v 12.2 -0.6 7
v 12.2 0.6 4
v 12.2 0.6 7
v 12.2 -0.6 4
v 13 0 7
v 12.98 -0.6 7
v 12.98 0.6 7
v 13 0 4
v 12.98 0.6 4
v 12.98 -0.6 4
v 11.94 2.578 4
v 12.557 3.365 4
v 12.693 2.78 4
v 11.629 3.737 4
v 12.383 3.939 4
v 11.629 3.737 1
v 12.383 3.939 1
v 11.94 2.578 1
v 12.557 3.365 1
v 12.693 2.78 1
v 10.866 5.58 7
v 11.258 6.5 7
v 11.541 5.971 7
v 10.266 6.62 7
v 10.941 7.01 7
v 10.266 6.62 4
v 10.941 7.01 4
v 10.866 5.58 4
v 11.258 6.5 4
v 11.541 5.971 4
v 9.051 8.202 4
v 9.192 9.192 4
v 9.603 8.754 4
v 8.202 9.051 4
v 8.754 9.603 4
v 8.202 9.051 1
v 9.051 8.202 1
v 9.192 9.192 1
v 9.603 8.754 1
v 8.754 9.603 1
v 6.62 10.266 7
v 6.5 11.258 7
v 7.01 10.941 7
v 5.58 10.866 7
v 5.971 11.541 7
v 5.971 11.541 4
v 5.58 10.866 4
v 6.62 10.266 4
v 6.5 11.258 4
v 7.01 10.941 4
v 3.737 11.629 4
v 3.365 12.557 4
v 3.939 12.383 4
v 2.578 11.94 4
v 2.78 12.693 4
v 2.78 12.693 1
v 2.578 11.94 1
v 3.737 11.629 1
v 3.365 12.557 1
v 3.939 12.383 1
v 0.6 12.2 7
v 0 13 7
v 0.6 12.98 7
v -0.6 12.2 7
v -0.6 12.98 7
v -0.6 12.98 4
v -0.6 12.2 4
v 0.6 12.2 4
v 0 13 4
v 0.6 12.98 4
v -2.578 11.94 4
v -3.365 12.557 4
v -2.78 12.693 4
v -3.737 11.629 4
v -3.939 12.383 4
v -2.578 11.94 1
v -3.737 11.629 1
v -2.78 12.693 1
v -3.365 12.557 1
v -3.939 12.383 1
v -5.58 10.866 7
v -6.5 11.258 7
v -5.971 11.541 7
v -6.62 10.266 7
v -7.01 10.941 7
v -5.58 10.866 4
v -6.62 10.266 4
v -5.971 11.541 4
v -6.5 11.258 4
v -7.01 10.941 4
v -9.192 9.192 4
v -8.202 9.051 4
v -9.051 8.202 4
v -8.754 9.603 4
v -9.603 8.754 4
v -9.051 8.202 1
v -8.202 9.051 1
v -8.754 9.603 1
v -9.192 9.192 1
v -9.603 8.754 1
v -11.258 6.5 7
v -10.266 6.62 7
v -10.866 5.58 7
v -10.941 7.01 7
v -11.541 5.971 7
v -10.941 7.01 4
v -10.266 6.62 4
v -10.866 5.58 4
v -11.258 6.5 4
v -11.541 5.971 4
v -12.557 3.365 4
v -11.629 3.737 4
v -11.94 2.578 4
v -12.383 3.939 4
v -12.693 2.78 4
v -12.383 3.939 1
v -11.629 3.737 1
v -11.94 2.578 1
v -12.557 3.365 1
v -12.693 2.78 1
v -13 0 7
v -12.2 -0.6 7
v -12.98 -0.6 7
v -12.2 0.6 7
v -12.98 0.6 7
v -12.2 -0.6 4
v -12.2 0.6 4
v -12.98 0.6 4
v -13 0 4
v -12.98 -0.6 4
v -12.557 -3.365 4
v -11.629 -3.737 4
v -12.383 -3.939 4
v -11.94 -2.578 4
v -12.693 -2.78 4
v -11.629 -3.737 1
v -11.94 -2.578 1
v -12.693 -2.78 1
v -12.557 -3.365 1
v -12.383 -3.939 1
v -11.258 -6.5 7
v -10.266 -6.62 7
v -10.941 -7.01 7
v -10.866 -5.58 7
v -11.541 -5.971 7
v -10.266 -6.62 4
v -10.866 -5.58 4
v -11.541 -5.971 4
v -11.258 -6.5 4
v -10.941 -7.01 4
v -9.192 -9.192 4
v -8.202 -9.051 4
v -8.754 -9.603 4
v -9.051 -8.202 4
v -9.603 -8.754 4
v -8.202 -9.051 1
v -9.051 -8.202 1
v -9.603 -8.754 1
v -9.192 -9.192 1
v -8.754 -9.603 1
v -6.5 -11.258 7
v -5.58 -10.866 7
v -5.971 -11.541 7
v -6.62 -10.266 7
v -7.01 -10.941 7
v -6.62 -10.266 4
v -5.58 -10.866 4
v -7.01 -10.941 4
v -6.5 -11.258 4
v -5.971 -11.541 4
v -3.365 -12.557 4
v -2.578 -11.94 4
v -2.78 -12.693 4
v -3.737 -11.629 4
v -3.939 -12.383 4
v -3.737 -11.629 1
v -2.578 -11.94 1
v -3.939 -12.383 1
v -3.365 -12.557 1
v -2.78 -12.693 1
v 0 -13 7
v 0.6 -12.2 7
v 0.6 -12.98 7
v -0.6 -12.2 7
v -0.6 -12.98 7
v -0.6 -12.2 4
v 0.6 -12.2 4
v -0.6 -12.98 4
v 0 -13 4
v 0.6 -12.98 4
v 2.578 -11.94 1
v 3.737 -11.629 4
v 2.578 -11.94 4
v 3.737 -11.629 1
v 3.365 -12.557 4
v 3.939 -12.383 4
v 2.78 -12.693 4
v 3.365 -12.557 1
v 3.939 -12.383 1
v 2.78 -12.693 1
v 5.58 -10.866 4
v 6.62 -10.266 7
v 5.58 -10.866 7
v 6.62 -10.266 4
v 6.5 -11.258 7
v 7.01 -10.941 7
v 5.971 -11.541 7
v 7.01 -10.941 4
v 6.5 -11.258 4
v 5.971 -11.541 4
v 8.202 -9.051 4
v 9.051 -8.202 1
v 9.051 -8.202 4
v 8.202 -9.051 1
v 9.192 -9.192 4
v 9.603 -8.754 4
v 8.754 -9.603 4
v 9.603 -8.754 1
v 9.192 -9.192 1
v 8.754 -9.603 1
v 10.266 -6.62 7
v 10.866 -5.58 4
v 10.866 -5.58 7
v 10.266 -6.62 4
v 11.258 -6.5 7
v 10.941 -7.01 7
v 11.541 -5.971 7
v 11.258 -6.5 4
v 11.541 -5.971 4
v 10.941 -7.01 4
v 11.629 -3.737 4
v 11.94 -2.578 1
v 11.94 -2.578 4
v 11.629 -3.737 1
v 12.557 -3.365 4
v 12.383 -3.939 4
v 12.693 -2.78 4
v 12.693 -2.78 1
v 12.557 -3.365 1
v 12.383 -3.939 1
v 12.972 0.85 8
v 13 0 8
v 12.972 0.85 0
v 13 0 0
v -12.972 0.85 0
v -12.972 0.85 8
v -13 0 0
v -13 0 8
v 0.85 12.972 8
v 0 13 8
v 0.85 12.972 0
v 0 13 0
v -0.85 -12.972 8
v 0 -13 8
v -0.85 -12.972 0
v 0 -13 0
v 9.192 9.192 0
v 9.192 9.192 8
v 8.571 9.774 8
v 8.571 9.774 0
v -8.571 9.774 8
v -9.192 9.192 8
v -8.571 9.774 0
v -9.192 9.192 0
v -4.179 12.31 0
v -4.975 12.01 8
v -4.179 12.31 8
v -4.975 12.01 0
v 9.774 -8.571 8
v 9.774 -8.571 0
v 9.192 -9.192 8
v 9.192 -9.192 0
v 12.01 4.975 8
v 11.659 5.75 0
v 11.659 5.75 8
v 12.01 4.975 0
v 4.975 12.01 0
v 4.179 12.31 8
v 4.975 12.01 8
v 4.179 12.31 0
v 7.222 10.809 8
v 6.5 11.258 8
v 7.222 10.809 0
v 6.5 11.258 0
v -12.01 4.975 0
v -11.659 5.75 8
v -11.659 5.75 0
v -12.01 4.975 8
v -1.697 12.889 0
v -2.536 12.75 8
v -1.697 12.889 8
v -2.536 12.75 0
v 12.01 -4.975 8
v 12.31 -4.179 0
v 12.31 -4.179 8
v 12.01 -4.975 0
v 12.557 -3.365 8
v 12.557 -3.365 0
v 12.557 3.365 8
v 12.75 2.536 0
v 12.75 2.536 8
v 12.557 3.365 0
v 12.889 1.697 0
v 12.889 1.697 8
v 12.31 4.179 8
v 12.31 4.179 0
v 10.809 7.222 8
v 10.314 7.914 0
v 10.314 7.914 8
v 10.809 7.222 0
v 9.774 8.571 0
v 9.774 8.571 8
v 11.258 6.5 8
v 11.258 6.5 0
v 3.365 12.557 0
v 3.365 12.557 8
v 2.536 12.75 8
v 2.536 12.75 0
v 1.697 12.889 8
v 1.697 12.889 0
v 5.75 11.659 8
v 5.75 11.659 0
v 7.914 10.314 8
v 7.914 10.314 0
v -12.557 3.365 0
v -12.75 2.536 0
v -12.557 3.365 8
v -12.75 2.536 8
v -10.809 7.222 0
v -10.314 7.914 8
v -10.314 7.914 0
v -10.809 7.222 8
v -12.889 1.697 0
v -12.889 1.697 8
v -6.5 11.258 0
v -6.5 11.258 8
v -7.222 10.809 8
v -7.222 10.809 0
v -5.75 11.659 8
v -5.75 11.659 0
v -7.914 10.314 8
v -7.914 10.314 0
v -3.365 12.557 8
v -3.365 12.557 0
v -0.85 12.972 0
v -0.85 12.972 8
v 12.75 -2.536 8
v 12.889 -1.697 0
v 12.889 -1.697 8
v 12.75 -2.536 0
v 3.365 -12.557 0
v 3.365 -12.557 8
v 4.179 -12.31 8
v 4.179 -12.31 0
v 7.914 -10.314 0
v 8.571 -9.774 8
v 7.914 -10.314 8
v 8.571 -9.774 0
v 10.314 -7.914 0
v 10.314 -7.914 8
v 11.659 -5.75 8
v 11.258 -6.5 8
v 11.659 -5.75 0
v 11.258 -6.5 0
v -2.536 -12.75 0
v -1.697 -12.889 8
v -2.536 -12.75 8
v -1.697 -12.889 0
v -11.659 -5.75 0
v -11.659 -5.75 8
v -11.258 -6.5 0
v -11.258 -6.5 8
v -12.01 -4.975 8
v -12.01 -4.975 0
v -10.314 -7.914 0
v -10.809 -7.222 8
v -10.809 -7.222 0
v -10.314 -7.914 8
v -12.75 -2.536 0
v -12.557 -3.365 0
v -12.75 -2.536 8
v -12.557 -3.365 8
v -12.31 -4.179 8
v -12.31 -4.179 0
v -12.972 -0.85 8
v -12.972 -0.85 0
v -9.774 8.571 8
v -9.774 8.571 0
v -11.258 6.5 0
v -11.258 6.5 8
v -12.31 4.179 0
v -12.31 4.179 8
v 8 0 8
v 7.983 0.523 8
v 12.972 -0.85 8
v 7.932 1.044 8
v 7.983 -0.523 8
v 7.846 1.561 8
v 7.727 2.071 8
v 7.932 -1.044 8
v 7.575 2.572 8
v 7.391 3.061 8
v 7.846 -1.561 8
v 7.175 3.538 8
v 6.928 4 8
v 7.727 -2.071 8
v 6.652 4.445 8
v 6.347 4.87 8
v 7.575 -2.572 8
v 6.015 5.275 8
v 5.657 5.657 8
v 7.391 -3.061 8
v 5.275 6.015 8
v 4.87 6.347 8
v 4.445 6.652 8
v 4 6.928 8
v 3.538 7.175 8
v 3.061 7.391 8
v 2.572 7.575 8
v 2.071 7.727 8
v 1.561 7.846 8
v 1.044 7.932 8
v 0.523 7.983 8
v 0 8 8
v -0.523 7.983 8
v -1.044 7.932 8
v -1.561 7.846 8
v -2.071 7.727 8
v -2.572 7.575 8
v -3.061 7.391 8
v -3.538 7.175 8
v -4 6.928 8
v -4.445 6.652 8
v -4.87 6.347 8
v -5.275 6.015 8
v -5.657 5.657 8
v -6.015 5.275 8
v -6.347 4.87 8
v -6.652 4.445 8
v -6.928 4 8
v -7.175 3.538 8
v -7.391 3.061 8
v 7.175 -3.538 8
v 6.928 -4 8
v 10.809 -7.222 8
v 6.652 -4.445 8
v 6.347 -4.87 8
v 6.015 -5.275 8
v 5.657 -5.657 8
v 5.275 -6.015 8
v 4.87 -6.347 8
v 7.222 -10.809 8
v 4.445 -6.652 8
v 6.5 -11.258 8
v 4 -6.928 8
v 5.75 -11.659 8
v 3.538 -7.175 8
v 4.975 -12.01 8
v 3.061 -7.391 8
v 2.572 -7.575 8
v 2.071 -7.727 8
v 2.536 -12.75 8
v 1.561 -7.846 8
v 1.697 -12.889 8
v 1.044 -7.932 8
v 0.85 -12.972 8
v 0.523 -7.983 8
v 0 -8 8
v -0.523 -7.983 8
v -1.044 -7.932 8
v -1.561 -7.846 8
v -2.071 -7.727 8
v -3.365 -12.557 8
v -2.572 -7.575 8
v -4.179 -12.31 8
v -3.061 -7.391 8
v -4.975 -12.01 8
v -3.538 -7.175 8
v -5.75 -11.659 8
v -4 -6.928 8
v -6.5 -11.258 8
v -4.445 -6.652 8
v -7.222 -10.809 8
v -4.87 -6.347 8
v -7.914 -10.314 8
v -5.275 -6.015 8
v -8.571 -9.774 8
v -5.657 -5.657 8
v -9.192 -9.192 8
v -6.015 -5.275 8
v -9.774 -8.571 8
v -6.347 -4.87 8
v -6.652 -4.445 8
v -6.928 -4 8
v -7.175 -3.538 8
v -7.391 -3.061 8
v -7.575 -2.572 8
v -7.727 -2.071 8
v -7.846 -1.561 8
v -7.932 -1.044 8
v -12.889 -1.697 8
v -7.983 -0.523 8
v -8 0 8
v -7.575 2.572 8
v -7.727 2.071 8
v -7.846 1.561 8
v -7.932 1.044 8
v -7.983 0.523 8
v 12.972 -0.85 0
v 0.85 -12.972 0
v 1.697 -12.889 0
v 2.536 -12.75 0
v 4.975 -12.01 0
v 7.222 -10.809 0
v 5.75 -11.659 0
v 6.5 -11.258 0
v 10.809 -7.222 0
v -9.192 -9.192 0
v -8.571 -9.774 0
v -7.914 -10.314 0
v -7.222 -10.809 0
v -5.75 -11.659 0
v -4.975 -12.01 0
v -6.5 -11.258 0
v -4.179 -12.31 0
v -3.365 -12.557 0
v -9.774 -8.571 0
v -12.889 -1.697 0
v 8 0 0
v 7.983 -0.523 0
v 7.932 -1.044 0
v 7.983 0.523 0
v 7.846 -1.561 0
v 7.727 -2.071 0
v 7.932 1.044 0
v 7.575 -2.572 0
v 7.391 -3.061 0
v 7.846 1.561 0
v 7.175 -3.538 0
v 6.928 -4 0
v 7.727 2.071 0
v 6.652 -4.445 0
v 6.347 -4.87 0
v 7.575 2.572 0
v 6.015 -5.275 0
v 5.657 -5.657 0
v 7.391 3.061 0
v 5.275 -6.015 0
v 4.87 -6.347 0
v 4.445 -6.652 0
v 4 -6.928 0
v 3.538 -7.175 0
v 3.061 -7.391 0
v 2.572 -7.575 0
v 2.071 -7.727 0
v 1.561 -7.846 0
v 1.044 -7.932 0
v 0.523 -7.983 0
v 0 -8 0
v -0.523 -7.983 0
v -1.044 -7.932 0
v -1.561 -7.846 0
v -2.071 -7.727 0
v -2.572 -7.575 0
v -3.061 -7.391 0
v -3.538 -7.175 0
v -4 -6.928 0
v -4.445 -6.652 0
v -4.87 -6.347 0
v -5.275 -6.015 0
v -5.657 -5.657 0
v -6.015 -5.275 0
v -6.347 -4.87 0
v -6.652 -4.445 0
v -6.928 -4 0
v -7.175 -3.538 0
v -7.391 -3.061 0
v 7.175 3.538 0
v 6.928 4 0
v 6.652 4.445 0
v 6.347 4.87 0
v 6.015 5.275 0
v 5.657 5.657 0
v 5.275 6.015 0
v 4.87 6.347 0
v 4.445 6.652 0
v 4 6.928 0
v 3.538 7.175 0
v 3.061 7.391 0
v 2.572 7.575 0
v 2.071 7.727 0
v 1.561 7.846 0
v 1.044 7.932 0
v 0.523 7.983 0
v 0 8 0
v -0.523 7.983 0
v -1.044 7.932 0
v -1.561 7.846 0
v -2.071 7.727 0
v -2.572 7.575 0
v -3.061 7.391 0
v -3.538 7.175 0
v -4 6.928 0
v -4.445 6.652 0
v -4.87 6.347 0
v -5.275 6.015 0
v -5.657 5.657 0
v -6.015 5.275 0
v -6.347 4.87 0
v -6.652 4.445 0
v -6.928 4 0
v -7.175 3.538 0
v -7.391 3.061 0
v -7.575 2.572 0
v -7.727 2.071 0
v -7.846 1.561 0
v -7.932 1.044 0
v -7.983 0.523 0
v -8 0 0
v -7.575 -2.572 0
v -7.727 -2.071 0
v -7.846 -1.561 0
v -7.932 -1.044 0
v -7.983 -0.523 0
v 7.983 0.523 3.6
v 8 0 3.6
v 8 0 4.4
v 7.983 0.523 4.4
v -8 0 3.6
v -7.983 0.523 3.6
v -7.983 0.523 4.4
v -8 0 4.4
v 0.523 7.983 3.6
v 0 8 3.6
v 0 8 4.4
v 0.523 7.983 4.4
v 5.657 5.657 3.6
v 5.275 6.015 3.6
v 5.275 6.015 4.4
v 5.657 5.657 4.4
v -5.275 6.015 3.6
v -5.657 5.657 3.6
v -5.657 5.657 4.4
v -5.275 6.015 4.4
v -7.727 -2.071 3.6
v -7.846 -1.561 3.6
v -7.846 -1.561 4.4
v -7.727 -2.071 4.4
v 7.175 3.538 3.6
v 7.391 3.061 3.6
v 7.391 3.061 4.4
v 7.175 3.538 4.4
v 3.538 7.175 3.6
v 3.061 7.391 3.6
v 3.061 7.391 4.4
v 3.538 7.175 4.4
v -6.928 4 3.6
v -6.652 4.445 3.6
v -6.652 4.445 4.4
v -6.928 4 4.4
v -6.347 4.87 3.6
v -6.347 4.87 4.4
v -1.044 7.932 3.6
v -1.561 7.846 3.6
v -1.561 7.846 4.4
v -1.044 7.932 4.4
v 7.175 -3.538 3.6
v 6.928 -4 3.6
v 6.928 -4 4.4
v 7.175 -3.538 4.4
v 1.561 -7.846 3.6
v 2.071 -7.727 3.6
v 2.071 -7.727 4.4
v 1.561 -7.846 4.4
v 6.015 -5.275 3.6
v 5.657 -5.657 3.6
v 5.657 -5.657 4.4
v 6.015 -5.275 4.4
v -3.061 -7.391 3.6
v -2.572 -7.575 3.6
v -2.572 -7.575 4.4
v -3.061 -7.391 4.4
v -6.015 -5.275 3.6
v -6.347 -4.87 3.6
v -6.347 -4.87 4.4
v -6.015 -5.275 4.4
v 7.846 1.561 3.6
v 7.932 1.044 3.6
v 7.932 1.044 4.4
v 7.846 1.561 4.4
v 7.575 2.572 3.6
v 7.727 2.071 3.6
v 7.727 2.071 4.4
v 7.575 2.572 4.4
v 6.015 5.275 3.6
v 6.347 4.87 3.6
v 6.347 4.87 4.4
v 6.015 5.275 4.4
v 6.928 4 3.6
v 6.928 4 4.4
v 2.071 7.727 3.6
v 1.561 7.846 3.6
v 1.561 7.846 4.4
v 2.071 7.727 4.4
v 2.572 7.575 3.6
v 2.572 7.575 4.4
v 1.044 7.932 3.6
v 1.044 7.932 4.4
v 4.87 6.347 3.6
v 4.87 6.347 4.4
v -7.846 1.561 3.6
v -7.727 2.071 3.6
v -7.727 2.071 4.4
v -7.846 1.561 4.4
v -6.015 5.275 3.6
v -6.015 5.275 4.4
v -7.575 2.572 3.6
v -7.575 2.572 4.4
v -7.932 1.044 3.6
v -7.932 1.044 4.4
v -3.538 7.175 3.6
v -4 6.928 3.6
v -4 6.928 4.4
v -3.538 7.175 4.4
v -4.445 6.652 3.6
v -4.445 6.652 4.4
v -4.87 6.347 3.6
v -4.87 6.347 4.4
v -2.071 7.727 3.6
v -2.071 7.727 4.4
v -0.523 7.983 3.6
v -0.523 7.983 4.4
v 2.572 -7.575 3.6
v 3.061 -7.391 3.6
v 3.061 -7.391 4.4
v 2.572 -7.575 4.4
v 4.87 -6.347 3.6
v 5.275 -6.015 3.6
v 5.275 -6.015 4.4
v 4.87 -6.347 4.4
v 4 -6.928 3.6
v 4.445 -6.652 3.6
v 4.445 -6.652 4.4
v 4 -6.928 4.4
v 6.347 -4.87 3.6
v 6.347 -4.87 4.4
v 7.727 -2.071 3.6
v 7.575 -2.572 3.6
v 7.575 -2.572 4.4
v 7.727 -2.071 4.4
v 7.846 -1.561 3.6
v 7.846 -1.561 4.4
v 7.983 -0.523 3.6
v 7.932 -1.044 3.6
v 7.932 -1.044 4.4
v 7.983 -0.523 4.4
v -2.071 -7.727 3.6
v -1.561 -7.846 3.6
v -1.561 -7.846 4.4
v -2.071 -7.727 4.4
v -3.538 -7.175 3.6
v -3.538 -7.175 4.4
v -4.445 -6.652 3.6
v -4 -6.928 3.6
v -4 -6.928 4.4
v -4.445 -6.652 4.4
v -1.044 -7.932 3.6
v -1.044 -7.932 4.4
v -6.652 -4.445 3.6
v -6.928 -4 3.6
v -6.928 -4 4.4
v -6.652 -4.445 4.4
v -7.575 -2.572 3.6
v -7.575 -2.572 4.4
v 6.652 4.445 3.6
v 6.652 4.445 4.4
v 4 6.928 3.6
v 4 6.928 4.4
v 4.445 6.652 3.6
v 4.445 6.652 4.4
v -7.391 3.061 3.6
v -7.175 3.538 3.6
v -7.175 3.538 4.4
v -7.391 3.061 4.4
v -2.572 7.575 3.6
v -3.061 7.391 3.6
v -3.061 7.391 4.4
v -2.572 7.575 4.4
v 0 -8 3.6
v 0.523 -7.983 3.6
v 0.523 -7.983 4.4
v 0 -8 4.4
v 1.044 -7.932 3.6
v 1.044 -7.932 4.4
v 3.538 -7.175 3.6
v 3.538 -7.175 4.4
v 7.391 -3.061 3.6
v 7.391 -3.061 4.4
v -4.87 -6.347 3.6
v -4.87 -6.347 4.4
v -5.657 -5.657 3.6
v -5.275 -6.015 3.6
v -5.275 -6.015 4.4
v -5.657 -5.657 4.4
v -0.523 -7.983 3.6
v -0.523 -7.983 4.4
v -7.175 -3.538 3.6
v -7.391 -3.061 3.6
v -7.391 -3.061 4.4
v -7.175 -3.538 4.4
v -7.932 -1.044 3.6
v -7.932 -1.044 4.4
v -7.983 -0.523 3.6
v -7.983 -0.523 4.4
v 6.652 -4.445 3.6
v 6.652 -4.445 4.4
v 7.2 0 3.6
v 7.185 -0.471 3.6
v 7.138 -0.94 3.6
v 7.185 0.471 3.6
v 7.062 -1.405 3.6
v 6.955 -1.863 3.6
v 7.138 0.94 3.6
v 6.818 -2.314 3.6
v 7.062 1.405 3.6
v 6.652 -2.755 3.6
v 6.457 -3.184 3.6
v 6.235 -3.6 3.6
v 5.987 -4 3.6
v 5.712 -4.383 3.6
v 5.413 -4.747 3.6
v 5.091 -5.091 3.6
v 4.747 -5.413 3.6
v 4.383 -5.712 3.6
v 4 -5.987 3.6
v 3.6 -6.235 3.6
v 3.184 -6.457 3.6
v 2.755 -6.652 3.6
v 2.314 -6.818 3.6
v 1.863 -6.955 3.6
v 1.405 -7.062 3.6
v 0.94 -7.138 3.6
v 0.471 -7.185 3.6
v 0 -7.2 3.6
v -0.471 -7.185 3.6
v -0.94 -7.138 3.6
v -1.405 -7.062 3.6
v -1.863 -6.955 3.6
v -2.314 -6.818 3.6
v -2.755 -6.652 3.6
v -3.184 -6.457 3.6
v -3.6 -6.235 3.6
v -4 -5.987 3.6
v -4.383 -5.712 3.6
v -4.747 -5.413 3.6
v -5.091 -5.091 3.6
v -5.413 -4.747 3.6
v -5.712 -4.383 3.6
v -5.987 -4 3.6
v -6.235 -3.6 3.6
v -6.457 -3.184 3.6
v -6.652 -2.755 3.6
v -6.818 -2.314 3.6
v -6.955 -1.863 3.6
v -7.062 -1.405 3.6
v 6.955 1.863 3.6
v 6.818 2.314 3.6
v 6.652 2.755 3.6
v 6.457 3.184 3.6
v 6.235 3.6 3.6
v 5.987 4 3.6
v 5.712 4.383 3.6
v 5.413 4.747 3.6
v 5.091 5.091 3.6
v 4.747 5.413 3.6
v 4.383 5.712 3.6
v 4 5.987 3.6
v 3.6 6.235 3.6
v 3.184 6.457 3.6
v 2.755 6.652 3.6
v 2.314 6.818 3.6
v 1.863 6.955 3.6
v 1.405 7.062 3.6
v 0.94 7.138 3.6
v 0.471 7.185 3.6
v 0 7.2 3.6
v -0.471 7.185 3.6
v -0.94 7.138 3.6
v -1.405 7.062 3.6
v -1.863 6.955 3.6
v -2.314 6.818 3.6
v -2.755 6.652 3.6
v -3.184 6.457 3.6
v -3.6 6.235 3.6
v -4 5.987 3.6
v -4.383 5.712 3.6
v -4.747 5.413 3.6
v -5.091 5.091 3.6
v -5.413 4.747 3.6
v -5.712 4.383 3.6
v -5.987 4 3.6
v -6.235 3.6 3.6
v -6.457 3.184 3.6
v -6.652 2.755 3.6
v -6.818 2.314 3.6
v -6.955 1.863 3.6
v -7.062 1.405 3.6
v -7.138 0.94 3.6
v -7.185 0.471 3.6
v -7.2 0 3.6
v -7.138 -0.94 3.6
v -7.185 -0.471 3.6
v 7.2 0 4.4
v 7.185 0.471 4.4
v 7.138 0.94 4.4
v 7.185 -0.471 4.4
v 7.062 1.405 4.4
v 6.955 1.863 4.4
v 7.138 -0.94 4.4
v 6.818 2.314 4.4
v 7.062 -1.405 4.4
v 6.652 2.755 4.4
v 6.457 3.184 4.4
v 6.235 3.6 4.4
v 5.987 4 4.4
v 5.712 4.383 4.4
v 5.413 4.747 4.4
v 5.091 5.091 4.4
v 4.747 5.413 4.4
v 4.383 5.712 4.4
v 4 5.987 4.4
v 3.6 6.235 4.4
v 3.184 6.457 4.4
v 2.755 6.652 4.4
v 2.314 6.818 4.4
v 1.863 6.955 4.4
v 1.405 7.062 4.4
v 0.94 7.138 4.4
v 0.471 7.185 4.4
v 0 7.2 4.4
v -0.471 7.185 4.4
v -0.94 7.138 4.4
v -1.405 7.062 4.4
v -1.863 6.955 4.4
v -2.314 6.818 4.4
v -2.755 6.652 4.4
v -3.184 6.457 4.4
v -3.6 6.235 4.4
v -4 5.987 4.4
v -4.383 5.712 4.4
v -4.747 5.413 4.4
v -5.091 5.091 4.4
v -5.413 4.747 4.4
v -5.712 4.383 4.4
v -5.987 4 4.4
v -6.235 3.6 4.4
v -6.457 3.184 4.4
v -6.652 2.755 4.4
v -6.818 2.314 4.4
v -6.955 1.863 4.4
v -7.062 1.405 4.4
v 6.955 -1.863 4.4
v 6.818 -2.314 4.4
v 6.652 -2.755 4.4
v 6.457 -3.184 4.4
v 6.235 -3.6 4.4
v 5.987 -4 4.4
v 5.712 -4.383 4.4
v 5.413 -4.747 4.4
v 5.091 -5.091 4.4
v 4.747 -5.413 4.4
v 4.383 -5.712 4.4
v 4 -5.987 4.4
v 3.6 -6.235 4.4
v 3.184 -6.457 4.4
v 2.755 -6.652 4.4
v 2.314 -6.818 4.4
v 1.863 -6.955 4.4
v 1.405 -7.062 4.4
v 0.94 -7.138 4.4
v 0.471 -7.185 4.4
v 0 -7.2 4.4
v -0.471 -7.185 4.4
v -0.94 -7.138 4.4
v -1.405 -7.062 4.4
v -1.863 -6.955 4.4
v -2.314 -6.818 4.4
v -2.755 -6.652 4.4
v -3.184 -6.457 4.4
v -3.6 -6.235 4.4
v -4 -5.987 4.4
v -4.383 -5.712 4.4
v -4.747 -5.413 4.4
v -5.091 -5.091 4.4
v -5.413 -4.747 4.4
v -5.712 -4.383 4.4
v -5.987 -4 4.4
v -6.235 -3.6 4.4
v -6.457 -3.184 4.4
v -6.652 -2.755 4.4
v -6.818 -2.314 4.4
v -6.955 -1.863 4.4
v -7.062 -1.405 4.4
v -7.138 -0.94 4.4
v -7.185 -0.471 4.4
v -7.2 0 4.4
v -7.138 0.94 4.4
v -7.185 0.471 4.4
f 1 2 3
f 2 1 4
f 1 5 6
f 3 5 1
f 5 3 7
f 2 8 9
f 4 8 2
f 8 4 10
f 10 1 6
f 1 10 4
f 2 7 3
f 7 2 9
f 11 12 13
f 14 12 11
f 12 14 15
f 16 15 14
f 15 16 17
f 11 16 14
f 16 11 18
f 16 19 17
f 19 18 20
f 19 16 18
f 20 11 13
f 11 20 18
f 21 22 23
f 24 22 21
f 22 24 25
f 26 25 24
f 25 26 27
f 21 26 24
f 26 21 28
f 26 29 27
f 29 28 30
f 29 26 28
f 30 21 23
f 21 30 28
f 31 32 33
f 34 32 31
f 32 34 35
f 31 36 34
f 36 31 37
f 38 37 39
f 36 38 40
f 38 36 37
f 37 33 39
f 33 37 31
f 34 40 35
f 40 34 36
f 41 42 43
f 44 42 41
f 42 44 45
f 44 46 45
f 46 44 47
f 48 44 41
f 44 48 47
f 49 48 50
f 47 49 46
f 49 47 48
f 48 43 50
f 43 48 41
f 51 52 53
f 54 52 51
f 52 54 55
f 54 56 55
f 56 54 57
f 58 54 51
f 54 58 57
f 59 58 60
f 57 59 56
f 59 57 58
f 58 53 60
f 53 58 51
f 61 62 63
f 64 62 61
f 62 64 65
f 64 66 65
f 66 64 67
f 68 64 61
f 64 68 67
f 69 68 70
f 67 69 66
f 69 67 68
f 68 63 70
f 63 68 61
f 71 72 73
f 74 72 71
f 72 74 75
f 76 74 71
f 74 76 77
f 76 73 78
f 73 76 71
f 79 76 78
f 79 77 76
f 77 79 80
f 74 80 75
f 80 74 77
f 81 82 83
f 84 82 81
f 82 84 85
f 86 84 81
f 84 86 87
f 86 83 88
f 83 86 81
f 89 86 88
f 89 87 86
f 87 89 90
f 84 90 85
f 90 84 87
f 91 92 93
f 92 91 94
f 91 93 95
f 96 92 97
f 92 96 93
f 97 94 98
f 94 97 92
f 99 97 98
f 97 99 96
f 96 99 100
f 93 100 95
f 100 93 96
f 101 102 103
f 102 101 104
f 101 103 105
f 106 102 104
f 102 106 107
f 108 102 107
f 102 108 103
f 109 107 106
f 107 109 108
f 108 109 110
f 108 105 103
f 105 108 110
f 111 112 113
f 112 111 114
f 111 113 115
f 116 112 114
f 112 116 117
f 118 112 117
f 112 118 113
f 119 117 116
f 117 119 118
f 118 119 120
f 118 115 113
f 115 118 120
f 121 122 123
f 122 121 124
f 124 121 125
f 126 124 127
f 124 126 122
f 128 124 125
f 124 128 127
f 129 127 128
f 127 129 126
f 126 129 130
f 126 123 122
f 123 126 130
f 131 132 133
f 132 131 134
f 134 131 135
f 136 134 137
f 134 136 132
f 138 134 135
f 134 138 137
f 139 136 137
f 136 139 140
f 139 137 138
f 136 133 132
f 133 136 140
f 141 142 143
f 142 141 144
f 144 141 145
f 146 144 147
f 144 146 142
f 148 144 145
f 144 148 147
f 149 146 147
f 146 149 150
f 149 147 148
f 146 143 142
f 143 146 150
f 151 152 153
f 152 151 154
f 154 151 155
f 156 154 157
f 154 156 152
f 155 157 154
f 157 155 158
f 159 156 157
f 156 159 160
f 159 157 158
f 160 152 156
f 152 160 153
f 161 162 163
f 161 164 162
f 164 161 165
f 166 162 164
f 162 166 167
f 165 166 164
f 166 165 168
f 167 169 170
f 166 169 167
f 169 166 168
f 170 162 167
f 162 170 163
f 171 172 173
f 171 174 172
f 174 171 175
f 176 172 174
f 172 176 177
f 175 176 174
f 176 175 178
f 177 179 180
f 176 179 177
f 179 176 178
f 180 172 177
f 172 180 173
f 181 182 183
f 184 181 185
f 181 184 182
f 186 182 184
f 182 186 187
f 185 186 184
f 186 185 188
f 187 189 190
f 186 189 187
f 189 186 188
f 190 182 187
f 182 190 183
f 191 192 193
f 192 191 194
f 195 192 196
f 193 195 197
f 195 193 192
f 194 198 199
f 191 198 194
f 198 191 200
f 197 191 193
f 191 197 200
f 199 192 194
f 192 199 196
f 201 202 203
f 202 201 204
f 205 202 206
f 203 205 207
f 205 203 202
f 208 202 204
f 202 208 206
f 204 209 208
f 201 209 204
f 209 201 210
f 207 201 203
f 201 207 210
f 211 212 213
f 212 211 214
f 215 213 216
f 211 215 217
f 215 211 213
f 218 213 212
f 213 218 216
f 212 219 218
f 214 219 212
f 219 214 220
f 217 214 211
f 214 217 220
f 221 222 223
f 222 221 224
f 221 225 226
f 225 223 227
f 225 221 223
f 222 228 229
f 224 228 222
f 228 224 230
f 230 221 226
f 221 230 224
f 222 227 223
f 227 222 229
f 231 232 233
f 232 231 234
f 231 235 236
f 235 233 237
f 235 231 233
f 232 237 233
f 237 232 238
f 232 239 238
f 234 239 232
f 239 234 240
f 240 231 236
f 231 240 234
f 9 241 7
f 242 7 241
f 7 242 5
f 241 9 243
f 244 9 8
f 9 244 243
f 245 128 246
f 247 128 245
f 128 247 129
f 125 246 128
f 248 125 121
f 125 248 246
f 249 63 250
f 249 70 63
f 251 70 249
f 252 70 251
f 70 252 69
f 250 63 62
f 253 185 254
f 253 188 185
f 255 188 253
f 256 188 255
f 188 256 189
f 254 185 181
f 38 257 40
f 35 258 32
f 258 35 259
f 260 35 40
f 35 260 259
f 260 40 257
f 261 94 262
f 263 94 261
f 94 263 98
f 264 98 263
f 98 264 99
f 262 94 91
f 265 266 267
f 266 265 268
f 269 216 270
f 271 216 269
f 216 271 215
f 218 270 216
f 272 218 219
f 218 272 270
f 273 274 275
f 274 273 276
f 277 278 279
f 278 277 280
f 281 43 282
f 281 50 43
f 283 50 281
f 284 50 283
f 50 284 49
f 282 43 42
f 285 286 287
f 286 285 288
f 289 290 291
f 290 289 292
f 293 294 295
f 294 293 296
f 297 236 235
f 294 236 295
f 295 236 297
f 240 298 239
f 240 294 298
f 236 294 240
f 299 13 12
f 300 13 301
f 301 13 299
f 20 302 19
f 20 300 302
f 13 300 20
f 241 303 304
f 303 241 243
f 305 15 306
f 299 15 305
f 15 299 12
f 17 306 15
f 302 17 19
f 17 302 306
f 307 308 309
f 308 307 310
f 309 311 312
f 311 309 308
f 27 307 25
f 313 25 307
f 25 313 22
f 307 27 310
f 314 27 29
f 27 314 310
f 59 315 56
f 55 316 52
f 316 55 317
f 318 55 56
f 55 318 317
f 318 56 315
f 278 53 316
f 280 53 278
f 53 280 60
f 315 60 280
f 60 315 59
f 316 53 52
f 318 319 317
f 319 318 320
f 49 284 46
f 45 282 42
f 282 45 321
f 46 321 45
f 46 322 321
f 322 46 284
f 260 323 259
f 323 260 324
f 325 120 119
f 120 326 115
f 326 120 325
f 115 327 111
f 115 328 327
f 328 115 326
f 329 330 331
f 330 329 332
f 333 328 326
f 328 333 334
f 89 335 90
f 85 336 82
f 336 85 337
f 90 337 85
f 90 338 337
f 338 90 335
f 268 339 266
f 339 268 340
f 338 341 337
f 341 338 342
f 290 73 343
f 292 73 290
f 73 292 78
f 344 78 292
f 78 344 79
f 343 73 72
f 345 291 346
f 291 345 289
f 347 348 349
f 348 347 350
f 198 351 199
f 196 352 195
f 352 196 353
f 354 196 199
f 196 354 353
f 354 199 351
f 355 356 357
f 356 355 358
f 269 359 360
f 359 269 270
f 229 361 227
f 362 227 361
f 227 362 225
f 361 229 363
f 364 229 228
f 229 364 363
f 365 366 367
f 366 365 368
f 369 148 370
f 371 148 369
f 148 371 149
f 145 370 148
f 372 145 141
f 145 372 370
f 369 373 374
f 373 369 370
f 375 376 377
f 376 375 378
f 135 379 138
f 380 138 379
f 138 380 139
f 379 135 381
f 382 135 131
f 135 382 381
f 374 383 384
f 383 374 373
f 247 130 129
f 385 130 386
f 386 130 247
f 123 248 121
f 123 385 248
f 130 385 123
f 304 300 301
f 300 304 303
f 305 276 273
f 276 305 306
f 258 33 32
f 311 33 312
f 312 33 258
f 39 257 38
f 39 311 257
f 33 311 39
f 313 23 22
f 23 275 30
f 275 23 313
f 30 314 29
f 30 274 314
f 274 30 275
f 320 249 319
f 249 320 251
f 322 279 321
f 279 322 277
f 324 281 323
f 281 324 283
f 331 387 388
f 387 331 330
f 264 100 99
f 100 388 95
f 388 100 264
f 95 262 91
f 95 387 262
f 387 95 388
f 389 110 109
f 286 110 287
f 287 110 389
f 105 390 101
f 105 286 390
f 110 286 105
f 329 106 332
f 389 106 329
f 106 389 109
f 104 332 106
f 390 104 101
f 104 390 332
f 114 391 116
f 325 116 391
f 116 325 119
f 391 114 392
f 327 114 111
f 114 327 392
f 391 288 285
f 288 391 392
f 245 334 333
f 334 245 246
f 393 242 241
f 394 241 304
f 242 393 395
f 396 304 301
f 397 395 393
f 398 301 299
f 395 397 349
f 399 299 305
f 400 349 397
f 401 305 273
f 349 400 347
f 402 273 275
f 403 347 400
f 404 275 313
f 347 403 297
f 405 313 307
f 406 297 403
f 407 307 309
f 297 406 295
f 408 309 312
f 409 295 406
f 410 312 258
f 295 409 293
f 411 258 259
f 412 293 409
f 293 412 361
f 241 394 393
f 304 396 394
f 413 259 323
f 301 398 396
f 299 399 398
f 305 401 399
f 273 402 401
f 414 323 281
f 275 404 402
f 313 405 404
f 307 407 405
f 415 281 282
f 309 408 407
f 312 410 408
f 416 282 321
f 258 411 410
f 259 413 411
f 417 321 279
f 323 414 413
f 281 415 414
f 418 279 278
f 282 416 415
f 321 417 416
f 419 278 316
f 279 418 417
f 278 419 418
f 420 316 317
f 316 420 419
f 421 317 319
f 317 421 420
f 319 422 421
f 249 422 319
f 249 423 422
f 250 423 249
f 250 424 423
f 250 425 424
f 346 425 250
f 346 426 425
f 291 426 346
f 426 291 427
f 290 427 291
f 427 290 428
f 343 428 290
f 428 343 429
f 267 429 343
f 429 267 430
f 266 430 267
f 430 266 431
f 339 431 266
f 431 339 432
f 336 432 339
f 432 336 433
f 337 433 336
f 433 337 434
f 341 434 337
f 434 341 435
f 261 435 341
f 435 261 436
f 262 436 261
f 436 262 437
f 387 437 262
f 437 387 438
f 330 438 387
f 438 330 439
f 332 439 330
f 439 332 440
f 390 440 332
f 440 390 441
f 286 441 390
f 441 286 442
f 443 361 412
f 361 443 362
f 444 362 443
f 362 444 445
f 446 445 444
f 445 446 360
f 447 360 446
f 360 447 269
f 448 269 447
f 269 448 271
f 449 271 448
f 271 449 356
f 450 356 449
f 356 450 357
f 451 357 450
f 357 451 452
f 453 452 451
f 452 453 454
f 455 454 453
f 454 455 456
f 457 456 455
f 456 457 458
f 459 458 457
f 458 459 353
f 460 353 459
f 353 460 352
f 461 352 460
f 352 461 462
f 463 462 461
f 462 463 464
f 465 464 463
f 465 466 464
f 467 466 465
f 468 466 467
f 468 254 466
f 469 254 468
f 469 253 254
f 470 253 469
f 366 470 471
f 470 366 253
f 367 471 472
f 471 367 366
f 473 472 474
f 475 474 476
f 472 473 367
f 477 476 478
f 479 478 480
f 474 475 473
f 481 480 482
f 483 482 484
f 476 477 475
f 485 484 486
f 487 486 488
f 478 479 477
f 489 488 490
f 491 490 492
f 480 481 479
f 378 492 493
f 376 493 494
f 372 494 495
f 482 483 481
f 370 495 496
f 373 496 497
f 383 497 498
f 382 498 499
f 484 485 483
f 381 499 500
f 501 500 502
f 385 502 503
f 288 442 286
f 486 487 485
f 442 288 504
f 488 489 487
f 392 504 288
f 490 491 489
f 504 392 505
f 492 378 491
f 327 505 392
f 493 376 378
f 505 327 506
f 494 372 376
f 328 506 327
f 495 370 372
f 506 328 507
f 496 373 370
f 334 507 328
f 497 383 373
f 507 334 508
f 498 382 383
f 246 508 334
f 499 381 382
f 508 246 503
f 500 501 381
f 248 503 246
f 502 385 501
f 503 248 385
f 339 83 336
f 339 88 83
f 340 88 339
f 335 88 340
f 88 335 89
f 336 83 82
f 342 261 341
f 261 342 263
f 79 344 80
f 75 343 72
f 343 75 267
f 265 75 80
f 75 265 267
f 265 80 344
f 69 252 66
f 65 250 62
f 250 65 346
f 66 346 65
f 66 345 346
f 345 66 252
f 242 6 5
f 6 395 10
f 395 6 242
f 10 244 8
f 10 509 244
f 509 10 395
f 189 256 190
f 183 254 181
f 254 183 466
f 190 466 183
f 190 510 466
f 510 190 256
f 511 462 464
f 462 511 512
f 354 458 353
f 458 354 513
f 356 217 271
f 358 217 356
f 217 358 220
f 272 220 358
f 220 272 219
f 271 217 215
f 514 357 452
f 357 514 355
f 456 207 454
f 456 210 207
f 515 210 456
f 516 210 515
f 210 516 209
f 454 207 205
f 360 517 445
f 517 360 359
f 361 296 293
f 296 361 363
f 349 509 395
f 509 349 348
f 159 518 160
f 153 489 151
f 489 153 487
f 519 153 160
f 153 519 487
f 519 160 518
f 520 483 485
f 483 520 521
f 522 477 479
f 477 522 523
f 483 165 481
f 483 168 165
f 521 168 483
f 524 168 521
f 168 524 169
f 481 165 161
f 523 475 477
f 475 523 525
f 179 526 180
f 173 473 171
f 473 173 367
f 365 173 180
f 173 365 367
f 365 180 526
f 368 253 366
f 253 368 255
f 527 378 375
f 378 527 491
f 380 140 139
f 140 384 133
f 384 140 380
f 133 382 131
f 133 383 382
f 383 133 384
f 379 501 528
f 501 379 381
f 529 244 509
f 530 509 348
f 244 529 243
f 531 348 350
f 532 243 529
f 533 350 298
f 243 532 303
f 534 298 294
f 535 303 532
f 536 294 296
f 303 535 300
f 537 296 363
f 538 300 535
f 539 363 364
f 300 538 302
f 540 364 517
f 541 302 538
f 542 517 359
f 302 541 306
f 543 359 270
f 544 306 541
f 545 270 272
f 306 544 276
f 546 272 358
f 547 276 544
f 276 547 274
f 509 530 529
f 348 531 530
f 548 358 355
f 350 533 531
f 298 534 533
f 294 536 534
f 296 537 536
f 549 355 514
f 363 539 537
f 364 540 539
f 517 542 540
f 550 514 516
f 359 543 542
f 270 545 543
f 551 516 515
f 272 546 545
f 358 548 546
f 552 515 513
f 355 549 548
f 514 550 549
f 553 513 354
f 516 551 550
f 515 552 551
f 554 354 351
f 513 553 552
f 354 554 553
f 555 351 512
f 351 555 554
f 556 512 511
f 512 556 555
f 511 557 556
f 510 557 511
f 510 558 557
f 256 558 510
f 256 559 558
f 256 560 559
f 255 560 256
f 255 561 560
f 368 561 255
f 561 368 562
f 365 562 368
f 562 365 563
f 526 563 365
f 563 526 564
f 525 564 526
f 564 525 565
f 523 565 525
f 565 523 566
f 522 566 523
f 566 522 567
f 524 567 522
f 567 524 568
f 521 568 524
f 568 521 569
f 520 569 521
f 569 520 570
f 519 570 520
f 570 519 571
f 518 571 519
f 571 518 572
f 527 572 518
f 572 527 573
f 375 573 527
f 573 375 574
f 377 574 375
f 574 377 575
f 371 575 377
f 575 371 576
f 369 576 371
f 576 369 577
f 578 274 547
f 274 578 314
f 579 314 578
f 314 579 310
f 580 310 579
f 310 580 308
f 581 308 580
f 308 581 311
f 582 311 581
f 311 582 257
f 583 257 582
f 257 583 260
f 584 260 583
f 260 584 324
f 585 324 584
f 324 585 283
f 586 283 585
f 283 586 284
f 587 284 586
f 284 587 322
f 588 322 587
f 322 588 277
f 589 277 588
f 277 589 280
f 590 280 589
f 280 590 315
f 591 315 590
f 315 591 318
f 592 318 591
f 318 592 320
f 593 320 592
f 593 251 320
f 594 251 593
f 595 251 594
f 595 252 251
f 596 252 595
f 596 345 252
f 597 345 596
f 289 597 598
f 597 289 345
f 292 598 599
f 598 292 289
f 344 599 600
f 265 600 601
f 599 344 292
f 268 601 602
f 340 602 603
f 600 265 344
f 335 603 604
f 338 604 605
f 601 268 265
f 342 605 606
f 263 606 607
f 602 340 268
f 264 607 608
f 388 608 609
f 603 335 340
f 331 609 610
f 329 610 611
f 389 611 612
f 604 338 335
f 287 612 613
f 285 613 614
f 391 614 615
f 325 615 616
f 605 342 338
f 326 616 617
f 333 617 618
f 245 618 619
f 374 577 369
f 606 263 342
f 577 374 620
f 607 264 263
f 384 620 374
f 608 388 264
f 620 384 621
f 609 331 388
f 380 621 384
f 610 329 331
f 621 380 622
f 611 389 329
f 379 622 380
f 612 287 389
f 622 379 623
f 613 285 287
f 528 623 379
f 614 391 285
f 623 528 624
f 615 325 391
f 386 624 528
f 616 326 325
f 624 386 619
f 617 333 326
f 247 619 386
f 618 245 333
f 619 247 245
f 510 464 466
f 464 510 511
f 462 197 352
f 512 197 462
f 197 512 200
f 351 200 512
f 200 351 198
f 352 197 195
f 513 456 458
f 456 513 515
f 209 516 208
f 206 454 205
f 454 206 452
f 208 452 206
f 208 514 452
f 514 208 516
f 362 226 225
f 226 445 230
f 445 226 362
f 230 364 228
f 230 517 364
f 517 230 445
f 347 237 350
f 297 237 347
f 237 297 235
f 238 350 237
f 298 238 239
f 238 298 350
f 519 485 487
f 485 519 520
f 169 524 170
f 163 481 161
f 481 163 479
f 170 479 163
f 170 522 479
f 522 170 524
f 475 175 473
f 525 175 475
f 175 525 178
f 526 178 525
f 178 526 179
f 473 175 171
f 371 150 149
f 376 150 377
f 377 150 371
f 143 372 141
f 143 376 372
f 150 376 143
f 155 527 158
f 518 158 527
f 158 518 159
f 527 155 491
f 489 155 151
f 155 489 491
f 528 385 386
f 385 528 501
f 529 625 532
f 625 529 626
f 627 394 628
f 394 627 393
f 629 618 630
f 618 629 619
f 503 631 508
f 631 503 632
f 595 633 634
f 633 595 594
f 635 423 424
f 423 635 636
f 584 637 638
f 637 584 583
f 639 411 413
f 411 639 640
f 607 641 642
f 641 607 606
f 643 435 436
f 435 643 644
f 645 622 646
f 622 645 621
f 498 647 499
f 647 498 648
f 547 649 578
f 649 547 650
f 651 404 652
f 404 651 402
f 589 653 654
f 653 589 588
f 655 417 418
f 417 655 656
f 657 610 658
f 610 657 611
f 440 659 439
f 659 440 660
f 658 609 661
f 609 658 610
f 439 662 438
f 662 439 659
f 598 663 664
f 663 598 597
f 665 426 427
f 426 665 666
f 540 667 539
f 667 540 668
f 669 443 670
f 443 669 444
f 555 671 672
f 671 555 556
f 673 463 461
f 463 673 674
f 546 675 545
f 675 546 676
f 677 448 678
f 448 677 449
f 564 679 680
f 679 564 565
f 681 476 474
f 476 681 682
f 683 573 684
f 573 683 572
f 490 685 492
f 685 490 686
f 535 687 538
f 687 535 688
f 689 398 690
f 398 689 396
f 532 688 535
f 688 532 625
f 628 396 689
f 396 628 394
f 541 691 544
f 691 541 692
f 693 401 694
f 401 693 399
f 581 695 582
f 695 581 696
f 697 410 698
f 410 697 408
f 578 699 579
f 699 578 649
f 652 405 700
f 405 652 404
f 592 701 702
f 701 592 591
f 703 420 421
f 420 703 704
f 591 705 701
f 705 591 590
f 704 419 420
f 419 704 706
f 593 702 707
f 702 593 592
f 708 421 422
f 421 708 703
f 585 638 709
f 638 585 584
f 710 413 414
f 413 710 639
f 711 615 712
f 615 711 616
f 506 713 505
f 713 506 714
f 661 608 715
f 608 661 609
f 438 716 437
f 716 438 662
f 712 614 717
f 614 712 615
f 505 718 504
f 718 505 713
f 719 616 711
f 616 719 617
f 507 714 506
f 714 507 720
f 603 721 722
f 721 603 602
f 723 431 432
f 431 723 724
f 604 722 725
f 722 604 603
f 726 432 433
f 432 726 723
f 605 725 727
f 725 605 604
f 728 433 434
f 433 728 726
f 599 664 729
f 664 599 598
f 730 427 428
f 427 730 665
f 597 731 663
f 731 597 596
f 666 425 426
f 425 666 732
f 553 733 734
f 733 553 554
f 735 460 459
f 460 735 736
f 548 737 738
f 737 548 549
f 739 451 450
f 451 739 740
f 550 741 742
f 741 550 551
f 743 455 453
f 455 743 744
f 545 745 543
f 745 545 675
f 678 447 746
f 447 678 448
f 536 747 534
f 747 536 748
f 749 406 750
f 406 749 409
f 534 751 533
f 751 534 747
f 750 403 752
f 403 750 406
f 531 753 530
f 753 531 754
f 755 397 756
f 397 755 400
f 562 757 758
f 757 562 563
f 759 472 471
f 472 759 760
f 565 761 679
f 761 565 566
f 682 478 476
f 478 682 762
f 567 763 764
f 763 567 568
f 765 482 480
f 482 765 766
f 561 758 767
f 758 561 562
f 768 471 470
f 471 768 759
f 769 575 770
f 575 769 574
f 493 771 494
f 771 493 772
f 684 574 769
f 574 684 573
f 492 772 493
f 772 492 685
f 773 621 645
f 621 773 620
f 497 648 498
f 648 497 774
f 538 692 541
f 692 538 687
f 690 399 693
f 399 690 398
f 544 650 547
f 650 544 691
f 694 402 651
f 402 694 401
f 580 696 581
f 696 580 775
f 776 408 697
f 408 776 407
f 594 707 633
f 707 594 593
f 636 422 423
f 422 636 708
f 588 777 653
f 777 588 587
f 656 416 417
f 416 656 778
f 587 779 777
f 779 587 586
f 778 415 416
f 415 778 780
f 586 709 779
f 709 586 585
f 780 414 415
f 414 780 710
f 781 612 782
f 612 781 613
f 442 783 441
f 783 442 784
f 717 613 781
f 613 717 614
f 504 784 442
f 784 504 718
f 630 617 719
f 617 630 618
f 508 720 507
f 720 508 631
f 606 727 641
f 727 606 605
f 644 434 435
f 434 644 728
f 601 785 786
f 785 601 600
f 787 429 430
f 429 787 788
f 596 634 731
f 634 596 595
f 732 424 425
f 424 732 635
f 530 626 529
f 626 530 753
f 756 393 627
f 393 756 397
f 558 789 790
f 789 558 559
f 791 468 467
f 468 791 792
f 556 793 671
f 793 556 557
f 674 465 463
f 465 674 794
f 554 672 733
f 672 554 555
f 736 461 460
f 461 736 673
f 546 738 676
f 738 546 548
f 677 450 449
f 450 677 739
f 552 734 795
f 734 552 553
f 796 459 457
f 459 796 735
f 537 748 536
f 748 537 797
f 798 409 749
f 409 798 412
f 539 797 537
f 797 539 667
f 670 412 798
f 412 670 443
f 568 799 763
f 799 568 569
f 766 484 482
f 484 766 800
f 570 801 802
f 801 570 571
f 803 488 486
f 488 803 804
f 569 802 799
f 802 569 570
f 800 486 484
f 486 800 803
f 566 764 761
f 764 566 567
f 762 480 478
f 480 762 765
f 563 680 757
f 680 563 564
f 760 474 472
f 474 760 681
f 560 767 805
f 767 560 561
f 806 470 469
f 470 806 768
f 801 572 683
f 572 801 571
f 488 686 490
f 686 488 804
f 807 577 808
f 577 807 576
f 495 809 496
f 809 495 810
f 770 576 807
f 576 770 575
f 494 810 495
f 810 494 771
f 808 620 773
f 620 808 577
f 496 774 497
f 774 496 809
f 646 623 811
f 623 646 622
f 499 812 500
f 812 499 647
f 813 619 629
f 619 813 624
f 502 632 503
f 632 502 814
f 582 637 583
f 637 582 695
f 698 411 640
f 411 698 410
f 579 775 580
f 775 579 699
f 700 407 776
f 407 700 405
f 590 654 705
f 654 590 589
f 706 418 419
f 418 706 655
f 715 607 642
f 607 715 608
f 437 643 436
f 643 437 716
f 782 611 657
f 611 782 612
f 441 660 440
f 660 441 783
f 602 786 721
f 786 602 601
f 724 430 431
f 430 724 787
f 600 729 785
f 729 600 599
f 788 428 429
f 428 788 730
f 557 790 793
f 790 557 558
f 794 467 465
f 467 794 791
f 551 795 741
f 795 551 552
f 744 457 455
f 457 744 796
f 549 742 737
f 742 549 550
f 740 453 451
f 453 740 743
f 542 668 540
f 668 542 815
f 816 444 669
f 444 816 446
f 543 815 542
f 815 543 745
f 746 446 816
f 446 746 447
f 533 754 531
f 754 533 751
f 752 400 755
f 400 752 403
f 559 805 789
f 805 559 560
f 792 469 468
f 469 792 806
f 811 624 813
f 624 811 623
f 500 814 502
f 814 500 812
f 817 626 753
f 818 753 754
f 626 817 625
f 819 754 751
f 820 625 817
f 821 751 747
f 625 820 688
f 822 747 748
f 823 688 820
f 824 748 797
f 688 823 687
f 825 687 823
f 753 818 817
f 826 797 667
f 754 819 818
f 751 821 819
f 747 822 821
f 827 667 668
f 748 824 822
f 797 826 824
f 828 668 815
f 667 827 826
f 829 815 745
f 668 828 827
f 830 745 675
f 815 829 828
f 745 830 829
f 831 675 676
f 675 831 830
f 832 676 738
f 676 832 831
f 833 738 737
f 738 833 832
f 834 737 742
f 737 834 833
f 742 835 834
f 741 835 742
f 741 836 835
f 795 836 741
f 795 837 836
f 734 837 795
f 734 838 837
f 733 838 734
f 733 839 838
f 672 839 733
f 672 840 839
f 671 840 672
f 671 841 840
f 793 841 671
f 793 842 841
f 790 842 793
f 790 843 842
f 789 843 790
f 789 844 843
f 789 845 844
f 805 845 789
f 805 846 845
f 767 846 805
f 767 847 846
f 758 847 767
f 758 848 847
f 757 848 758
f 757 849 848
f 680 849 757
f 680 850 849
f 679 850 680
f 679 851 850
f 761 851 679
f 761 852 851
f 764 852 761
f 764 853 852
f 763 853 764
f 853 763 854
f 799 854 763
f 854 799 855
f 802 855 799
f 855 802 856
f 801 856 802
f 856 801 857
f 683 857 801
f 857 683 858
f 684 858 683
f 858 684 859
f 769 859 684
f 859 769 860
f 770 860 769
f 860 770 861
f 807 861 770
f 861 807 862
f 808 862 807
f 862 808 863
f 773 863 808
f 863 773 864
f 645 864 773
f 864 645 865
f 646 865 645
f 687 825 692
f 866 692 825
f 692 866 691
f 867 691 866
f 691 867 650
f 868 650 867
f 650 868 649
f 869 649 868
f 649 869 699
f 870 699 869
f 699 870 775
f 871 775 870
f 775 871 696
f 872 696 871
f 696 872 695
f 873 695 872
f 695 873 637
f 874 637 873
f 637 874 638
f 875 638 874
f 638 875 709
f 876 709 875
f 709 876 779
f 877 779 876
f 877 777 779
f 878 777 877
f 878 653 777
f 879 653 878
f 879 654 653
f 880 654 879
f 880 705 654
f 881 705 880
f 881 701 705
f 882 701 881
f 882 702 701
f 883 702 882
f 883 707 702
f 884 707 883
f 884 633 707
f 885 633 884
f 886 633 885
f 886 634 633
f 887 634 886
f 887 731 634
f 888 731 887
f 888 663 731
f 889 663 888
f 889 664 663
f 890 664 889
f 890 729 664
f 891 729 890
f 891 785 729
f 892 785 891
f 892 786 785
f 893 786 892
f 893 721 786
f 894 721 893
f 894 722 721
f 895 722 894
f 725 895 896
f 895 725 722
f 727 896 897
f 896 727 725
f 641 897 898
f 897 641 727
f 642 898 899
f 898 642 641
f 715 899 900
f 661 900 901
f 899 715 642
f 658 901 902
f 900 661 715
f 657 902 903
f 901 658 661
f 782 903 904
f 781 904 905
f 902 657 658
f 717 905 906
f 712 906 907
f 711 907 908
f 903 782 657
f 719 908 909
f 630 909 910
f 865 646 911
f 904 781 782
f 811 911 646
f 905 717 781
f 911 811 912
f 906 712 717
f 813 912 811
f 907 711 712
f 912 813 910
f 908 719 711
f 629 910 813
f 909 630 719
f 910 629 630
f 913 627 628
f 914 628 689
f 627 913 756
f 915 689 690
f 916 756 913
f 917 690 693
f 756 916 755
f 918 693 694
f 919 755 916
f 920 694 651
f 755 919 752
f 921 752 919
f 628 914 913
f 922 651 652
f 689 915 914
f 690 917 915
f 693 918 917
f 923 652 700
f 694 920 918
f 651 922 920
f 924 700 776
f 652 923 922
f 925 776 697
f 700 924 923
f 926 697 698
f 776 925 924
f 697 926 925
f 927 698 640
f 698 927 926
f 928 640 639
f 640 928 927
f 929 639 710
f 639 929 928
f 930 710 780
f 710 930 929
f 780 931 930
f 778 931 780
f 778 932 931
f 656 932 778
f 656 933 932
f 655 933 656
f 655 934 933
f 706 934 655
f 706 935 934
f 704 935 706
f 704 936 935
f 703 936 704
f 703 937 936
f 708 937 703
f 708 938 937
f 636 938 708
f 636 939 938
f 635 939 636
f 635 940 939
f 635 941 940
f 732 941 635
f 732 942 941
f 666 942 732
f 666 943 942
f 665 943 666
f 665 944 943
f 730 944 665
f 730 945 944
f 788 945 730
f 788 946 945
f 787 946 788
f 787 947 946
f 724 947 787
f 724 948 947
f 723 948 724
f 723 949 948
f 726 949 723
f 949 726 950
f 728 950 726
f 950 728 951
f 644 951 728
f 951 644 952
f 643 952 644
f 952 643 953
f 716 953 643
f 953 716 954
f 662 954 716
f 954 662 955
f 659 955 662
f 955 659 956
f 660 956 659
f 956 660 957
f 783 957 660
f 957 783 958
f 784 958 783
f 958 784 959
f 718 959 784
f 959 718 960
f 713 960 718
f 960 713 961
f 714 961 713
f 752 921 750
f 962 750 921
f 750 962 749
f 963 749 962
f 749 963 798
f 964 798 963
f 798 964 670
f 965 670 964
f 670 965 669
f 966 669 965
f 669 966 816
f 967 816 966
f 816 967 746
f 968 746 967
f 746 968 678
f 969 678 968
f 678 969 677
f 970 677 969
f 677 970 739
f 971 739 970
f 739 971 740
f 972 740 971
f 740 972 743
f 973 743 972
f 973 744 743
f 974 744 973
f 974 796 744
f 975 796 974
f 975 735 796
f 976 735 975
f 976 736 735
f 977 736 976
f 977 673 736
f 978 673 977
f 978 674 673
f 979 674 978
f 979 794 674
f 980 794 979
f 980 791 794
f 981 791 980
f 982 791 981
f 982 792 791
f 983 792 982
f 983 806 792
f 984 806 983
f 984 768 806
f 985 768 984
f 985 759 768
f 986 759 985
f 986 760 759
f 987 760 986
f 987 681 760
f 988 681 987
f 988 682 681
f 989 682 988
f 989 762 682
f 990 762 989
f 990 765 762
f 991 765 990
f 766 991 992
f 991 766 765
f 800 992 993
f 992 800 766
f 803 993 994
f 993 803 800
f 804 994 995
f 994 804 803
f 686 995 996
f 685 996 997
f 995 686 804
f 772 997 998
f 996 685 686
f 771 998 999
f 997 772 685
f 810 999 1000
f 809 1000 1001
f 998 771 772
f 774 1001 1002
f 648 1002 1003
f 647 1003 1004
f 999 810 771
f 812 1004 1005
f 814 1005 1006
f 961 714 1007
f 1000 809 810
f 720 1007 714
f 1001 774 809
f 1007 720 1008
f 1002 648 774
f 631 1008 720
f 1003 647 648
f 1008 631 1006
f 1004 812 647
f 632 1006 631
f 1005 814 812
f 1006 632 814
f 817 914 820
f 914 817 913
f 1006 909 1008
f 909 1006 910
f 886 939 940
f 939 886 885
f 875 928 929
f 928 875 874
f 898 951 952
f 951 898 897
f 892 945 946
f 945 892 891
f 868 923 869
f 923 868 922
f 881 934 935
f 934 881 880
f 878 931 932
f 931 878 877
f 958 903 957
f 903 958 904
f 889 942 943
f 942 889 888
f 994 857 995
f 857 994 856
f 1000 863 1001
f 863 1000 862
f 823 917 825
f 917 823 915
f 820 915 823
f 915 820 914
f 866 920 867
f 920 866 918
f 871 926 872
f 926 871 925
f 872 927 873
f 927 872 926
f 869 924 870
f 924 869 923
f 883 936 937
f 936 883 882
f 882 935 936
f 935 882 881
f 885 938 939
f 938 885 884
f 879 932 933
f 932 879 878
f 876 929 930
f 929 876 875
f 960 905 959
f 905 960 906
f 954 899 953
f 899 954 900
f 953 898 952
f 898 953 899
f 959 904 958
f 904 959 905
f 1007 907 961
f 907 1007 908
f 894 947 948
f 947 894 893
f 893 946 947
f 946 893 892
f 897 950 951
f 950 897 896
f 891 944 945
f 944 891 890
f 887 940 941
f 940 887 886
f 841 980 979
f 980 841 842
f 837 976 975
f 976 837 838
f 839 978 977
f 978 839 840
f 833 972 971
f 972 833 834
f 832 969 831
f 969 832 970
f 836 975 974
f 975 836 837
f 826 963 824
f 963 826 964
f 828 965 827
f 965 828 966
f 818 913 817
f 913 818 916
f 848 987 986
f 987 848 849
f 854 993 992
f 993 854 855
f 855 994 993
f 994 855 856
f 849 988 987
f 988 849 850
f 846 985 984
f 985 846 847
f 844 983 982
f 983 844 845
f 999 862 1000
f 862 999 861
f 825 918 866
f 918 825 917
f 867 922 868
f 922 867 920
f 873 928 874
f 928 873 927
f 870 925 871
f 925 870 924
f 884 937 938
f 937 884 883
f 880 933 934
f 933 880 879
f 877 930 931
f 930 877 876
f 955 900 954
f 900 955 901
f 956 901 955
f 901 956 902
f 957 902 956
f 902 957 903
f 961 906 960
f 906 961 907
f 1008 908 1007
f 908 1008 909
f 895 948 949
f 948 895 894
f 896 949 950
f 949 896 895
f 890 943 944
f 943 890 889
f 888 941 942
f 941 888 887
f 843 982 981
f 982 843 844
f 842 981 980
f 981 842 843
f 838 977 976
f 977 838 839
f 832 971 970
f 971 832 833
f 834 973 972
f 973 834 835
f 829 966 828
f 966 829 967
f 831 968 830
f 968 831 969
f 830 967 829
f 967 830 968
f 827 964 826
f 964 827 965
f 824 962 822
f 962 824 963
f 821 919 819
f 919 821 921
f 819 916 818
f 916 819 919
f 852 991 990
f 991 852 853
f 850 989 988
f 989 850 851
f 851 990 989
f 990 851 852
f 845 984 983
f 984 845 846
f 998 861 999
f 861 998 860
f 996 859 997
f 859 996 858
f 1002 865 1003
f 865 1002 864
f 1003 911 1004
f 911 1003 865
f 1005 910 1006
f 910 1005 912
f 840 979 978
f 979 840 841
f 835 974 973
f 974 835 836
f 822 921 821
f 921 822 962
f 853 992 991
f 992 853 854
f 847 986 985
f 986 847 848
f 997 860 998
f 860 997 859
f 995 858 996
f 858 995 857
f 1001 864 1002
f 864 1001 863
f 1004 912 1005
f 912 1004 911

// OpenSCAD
// Sudėtingas modelis lanksčioms dervoms: padangėlė su protektoriumi.
// Ją reikia užtempti ant 16 mm ratlankio (ar pirštų) - turi išsitempti ir grįžti.
$fn = 96;
OD = 26; ID = 16; W = 8; n = 24;
difference() {
  cylinder(d = OD, h = W);
  translate([0,0,-0.1]) cylinder(d = ID, h = W + 0.2);
  for (i = [0:n-1]) rotate([0,0,i*360/n]) translate([OD/2 - 0.8, -0.6, (i % 2) ? 1 : W/2])
    cube([1.2, 1.2, W/2 - 1]);
}
translate([0,0,W/2 - 0.4]) difference() { cylinder(d = ID + 0.1, h = 0.8); translate([0,0,-0.1]) cylinder(d = ID - 1.6, h = 1); }
